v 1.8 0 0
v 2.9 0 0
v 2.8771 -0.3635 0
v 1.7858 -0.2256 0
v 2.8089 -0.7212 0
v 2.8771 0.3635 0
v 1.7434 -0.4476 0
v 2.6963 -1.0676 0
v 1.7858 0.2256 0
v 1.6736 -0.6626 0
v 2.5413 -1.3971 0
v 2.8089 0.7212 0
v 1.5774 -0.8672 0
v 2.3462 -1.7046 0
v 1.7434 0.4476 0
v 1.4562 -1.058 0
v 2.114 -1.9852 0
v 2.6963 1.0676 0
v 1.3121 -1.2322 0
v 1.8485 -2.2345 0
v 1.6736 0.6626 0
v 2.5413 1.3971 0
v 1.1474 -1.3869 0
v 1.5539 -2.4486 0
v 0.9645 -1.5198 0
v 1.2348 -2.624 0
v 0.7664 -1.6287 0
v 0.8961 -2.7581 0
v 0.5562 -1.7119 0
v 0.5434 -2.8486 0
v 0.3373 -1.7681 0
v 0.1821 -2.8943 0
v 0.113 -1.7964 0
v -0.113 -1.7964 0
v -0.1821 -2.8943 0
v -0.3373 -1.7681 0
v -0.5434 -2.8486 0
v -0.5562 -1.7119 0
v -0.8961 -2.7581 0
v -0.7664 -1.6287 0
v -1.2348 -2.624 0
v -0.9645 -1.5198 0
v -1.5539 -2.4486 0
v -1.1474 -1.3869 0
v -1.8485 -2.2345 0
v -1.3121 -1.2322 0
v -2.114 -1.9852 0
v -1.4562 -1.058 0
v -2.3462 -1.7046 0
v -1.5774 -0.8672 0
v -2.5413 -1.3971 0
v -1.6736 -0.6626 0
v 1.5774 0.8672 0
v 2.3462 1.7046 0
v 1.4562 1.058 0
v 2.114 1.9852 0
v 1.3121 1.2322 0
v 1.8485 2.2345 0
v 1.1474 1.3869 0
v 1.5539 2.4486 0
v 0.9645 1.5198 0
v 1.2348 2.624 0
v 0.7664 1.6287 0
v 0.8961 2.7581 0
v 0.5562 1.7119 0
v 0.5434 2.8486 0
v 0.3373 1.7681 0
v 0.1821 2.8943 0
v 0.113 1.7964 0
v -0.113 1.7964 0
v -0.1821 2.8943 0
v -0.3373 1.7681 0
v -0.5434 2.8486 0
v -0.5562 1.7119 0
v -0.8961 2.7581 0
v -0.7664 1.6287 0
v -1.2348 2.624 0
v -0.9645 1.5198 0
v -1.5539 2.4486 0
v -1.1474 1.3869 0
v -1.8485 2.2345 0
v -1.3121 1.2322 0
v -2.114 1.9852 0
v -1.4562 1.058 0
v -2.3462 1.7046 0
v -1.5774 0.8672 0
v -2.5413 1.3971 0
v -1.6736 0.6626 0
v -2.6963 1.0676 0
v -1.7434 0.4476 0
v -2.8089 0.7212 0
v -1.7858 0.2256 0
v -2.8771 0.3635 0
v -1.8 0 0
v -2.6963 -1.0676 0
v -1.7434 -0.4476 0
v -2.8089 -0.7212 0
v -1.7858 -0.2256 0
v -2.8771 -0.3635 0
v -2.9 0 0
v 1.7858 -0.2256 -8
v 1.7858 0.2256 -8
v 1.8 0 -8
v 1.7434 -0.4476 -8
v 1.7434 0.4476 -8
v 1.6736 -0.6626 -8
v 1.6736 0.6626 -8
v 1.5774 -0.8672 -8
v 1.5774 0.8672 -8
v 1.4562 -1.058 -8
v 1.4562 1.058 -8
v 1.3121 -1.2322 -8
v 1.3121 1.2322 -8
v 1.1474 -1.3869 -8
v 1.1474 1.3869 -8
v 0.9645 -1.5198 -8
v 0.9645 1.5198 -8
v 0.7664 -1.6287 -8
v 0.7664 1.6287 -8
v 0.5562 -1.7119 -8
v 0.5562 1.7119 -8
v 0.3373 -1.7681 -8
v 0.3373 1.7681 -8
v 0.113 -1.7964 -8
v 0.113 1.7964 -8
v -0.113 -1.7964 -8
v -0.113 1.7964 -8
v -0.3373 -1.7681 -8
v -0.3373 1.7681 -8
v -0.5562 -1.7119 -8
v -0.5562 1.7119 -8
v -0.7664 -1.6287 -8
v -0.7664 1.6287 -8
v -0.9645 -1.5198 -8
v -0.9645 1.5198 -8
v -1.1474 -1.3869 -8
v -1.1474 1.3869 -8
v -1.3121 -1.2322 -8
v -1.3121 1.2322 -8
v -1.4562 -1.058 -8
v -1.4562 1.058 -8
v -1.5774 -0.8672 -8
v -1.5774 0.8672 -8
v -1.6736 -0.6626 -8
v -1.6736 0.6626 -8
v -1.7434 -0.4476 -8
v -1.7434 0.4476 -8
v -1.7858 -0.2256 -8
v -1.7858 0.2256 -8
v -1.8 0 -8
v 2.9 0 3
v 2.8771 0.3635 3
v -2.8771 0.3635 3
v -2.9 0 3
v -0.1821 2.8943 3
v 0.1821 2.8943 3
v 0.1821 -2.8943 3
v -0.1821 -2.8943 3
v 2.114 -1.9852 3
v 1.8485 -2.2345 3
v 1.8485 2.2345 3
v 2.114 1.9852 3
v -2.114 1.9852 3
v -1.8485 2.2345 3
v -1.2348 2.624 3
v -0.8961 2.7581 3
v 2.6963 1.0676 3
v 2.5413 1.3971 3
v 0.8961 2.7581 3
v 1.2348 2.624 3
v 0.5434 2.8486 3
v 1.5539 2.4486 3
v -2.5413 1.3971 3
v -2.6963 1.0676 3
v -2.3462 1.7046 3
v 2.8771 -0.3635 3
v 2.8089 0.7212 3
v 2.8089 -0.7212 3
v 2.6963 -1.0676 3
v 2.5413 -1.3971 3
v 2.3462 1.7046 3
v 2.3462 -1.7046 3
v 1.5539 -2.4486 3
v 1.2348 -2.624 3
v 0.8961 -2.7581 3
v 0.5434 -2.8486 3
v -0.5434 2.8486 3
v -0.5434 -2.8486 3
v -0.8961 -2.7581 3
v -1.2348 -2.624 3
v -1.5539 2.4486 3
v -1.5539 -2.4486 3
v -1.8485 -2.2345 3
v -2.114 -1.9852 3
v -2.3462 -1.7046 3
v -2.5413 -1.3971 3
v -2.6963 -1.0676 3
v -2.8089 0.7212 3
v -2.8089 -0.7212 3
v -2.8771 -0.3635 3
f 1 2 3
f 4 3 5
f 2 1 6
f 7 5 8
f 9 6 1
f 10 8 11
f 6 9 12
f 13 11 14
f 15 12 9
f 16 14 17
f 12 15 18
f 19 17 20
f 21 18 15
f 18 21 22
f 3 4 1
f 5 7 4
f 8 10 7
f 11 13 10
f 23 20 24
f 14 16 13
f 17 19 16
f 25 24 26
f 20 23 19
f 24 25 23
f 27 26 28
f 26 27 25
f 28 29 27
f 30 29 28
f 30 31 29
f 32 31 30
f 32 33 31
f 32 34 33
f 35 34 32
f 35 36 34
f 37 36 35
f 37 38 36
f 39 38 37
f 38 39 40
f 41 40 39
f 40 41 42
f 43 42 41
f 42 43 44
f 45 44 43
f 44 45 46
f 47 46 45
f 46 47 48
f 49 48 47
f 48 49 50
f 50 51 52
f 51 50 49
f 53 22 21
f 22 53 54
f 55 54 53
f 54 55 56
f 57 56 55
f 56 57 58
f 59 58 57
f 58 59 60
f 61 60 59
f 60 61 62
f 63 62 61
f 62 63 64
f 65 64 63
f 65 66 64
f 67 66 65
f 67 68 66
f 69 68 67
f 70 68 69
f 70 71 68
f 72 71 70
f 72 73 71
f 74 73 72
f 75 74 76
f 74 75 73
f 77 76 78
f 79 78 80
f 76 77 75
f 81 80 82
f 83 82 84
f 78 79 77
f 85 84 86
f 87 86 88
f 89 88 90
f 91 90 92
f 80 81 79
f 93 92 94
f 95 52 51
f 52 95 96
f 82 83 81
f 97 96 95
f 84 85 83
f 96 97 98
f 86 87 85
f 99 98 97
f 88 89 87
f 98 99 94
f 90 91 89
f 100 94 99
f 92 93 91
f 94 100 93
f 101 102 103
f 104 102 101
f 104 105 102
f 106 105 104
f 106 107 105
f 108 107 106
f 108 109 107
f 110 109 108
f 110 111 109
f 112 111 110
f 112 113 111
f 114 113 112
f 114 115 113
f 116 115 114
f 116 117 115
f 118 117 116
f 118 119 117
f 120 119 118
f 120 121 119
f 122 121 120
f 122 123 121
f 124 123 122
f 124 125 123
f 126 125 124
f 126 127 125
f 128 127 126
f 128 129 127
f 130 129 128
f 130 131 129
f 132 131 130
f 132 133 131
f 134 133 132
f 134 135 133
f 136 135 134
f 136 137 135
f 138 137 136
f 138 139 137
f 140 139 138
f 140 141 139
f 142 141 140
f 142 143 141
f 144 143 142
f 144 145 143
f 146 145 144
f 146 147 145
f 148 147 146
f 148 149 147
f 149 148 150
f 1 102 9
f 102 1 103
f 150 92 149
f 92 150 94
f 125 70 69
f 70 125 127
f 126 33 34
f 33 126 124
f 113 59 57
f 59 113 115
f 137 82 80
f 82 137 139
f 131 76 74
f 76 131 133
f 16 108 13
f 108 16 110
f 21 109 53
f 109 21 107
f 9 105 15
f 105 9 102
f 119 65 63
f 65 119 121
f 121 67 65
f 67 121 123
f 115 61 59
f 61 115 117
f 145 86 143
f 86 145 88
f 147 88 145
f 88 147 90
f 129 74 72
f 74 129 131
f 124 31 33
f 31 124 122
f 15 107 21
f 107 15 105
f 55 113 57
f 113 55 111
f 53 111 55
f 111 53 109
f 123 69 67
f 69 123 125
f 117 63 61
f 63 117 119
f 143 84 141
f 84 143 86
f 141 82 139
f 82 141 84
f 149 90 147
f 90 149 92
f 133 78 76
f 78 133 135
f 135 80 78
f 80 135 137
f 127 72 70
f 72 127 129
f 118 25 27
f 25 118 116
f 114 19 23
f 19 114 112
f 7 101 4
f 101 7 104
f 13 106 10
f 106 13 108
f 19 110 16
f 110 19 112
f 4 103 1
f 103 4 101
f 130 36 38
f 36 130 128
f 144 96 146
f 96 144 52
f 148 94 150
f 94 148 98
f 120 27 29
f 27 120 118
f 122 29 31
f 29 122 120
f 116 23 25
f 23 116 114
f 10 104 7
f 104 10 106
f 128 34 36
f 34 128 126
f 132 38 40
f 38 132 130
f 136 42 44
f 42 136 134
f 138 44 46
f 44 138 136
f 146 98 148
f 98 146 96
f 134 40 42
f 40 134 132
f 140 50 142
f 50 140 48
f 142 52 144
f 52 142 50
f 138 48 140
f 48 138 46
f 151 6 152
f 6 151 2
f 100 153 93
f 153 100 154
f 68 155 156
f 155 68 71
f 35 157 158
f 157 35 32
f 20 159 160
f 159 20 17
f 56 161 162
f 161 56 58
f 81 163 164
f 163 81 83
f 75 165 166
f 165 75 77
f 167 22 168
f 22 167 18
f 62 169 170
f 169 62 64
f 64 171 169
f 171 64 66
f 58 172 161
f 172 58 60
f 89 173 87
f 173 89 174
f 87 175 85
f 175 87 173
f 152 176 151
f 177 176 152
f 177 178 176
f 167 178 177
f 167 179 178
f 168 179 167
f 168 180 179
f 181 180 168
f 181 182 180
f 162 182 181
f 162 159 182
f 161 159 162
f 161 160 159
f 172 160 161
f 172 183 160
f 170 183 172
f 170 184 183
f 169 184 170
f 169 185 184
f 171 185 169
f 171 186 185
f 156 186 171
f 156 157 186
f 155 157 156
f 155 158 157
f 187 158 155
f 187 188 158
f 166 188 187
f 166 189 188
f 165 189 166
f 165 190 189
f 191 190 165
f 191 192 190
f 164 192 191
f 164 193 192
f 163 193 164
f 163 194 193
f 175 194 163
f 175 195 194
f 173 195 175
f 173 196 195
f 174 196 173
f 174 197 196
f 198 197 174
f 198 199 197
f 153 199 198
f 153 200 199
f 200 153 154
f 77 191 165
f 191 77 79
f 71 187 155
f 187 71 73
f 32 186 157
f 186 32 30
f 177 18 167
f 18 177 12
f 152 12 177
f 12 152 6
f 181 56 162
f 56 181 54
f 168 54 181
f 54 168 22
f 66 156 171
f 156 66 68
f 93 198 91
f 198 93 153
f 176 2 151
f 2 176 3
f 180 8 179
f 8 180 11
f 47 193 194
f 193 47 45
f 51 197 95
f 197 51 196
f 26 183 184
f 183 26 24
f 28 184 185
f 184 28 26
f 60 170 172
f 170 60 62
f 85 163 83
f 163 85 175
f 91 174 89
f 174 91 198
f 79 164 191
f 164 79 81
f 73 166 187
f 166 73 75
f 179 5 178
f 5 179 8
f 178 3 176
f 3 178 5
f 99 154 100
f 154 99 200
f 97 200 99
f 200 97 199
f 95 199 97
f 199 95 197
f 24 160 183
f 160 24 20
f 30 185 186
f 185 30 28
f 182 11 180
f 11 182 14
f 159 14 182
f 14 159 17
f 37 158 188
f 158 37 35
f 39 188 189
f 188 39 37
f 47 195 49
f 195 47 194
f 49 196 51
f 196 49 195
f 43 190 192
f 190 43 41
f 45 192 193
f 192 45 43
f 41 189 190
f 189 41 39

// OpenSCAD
$fn = 50;


difference() {
	union() {
		translate(v = [0, 0, 0]) {
			rotate(a = [0, 0, 0]) {
				difference() {
					union() {
						translate(v = [0, 0, -8.0000000000]) {
							cylinder(h = 8, r = 1.5000000000);
						}
						translate(v = [0, 0, -8.0000000000]) {
							cylinder(h = 8, r = 1.8000000000);
						}
						cylinder(h = 3, r = 2.9000000000);
						translate(v = [0, 0, -8.0000000000]) {
							cylinder(h = 8, r = 1.5000000000);
						}
					}
					union();
				}
			}
		}
	}
	union();
}
